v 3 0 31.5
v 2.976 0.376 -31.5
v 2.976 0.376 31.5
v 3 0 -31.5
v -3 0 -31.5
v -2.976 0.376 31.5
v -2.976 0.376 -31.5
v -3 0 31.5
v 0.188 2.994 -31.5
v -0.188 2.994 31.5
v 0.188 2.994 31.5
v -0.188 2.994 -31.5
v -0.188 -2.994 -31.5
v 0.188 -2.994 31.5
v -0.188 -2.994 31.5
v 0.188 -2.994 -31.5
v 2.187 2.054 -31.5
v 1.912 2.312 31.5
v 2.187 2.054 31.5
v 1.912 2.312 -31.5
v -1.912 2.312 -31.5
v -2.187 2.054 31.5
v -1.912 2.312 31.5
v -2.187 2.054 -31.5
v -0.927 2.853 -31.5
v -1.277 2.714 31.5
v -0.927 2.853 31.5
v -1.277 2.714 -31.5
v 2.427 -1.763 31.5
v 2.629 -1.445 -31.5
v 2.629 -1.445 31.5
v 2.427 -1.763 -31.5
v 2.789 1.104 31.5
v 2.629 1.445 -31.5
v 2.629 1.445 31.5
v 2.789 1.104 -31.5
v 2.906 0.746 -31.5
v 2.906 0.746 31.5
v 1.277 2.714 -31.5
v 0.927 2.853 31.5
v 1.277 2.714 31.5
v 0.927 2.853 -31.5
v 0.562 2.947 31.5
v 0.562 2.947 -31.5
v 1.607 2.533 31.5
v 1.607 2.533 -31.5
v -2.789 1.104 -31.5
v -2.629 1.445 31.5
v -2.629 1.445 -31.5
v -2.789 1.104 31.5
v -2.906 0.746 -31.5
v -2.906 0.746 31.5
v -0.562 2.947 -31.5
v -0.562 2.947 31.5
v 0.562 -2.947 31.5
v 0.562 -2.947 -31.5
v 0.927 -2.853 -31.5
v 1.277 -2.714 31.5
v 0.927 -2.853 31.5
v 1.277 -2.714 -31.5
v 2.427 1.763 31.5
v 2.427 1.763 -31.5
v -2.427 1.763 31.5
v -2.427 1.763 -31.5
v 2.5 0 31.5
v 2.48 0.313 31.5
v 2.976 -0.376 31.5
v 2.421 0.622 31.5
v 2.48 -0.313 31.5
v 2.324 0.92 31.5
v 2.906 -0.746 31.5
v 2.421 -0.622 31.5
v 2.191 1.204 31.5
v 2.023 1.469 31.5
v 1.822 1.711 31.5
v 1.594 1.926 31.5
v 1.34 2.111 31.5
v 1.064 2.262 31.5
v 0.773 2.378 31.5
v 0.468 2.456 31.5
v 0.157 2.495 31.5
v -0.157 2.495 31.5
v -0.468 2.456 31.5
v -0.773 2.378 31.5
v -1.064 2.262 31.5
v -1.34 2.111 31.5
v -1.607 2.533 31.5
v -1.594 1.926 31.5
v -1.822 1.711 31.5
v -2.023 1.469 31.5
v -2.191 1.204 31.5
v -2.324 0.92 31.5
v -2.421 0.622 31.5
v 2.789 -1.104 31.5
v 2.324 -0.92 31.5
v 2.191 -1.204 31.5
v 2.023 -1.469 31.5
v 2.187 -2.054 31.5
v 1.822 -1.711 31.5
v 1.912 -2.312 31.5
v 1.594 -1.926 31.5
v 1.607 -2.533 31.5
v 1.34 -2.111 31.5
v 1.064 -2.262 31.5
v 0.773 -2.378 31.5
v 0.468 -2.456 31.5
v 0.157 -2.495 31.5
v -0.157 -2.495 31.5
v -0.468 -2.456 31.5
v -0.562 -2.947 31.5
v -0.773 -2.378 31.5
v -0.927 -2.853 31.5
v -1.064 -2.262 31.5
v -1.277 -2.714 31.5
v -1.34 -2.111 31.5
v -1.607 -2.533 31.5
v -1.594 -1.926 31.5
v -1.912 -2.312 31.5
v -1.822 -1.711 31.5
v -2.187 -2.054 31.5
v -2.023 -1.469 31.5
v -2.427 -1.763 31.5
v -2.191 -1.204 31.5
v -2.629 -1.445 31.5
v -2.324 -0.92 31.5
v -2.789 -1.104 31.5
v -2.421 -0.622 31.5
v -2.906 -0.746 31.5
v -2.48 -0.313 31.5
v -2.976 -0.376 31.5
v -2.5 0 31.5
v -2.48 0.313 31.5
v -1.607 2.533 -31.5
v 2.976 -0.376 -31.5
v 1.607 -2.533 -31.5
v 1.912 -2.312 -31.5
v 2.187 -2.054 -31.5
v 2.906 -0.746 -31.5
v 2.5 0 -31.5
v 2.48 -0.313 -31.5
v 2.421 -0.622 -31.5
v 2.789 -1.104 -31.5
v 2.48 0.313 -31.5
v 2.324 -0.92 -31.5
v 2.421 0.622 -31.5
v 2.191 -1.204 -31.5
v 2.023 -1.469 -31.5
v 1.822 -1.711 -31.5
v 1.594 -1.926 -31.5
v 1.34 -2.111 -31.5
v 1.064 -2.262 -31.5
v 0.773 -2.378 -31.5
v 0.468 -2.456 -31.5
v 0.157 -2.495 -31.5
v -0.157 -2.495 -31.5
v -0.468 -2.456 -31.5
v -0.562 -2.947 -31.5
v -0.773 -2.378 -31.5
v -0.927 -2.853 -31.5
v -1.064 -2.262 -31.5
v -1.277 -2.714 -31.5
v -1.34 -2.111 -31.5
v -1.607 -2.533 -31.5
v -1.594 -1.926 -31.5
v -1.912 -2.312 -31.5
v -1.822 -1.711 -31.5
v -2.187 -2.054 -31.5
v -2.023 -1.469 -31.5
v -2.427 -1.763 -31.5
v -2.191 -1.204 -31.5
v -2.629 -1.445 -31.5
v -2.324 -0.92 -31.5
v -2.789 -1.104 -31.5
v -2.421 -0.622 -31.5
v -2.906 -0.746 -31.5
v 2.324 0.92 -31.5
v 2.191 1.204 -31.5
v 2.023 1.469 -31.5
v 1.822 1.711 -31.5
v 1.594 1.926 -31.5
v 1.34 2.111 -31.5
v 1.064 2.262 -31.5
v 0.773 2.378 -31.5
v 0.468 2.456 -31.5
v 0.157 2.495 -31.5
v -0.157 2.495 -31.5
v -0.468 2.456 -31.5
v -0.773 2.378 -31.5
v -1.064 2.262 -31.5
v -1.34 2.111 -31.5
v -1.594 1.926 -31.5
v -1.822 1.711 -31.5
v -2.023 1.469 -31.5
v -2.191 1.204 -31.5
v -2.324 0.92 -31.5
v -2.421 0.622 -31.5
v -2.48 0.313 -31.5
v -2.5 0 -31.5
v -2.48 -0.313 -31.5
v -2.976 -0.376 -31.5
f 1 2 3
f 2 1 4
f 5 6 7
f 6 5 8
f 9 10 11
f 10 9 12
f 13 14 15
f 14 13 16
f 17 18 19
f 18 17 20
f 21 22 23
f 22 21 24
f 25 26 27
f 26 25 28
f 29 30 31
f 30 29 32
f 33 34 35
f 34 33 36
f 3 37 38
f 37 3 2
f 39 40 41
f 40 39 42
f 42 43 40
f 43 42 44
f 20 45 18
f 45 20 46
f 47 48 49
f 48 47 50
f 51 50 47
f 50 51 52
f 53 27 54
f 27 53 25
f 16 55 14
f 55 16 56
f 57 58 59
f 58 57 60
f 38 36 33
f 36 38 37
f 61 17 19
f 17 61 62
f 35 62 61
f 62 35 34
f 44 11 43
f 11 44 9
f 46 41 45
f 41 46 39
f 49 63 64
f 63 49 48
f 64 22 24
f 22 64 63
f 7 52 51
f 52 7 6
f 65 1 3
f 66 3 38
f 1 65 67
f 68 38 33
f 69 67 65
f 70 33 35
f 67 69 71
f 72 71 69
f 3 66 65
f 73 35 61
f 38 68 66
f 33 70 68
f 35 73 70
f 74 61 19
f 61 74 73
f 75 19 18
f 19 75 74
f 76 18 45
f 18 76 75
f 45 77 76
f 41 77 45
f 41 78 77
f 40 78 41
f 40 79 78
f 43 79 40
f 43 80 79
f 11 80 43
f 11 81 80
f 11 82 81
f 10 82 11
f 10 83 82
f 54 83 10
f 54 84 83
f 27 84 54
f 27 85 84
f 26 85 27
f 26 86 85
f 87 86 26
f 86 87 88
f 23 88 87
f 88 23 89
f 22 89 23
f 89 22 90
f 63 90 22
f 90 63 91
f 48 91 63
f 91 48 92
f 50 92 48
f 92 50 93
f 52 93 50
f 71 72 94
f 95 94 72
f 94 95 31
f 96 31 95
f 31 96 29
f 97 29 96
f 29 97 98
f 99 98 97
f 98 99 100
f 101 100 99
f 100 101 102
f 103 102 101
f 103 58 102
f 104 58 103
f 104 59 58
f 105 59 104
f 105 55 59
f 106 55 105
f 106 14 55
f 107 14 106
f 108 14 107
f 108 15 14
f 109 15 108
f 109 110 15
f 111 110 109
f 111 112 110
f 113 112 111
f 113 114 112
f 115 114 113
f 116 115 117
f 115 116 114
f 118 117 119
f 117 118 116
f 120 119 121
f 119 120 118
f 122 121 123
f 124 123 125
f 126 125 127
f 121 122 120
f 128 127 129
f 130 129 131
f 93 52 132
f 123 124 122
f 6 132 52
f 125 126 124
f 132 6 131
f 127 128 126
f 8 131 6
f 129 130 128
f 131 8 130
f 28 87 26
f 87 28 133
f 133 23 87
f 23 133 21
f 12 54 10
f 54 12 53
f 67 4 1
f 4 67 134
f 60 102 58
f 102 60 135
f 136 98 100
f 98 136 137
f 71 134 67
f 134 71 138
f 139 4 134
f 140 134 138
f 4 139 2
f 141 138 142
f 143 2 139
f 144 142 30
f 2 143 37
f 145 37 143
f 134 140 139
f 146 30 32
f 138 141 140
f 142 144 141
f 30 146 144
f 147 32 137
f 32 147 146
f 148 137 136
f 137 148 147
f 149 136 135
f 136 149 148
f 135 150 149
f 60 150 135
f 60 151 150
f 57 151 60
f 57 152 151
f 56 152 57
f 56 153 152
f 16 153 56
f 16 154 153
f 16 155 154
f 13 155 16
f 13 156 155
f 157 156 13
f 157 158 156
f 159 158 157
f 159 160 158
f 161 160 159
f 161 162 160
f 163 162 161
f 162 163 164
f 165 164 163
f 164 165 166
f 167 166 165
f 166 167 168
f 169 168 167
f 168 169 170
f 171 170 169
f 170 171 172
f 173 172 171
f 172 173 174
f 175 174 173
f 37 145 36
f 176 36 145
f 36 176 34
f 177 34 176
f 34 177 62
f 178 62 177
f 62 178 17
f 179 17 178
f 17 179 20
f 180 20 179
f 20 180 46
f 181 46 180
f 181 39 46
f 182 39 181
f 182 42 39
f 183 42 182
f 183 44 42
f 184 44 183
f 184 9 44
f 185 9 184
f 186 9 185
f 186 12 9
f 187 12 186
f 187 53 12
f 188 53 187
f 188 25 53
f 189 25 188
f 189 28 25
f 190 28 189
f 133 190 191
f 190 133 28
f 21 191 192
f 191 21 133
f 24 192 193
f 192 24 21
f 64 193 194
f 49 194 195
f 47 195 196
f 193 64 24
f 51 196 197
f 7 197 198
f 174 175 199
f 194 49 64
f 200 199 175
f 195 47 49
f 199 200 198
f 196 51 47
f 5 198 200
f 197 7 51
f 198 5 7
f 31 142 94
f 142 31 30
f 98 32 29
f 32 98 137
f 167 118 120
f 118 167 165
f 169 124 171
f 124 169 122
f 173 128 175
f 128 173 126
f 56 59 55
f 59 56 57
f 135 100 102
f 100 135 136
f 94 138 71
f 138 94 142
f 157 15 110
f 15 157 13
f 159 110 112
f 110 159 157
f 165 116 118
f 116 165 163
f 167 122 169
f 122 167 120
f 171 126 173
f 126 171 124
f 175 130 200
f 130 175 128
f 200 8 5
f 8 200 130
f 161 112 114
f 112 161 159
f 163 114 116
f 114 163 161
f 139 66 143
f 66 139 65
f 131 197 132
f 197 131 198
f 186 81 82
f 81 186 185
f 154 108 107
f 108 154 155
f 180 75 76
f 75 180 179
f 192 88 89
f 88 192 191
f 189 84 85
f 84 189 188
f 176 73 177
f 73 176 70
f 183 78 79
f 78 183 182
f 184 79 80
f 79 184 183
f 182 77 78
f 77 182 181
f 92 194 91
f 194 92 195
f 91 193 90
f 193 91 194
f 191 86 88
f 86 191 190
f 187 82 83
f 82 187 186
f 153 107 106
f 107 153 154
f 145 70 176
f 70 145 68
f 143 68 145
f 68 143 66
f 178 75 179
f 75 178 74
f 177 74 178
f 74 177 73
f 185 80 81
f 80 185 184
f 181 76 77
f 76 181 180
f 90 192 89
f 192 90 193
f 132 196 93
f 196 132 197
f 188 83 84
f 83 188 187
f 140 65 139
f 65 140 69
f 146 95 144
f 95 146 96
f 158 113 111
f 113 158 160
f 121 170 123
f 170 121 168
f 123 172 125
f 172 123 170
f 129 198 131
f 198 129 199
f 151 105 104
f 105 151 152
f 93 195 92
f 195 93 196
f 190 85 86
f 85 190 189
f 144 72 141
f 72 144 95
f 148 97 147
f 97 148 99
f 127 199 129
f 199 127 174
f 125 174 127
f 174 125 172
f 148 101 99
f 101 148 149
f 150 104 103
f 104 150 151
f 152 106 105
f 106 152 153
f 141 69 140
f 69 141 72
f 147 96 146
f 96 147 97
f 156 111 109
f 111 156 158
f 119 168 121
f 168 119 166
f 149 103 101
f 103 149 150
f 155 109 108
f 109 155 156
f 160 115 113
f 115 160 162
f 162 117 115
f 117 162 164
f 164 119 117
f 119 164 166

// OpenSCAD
$fn = 50;


difference() {
	union() {
		translate(v = [0, 0, -31.5000000000]) {
			cylinder(h = 63, r = 3.0000000000);
		}
	}
	union() {
		translate(v = [0, 0, -100.0000000000]) {
			cylinder(h = 200, r = 2.5000000000);
		}
	}
}
